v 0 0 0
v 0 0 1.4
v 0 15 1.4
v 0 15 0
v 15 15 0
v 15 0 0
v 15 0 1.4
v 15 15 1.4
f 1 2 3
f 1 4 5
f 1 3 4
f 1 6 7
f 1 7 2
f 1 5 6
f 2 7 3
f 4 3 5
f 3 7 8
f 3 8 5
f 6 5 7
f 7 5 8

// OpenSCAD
/* Warning, this is a very basic generator with a lot of approximation 
input data : [LFBGA, ASB, 15x15x1.4mm, 208, , A, C04-21128A]
generated by com.zoubworld.electronics.cad.model3d.Basic
Date : Sun Feb 15 10:50:49 CET 2026
*/

//body
color("black")
translate([0,0,0])
cube([15.0,15.0,1.4], center=false);
